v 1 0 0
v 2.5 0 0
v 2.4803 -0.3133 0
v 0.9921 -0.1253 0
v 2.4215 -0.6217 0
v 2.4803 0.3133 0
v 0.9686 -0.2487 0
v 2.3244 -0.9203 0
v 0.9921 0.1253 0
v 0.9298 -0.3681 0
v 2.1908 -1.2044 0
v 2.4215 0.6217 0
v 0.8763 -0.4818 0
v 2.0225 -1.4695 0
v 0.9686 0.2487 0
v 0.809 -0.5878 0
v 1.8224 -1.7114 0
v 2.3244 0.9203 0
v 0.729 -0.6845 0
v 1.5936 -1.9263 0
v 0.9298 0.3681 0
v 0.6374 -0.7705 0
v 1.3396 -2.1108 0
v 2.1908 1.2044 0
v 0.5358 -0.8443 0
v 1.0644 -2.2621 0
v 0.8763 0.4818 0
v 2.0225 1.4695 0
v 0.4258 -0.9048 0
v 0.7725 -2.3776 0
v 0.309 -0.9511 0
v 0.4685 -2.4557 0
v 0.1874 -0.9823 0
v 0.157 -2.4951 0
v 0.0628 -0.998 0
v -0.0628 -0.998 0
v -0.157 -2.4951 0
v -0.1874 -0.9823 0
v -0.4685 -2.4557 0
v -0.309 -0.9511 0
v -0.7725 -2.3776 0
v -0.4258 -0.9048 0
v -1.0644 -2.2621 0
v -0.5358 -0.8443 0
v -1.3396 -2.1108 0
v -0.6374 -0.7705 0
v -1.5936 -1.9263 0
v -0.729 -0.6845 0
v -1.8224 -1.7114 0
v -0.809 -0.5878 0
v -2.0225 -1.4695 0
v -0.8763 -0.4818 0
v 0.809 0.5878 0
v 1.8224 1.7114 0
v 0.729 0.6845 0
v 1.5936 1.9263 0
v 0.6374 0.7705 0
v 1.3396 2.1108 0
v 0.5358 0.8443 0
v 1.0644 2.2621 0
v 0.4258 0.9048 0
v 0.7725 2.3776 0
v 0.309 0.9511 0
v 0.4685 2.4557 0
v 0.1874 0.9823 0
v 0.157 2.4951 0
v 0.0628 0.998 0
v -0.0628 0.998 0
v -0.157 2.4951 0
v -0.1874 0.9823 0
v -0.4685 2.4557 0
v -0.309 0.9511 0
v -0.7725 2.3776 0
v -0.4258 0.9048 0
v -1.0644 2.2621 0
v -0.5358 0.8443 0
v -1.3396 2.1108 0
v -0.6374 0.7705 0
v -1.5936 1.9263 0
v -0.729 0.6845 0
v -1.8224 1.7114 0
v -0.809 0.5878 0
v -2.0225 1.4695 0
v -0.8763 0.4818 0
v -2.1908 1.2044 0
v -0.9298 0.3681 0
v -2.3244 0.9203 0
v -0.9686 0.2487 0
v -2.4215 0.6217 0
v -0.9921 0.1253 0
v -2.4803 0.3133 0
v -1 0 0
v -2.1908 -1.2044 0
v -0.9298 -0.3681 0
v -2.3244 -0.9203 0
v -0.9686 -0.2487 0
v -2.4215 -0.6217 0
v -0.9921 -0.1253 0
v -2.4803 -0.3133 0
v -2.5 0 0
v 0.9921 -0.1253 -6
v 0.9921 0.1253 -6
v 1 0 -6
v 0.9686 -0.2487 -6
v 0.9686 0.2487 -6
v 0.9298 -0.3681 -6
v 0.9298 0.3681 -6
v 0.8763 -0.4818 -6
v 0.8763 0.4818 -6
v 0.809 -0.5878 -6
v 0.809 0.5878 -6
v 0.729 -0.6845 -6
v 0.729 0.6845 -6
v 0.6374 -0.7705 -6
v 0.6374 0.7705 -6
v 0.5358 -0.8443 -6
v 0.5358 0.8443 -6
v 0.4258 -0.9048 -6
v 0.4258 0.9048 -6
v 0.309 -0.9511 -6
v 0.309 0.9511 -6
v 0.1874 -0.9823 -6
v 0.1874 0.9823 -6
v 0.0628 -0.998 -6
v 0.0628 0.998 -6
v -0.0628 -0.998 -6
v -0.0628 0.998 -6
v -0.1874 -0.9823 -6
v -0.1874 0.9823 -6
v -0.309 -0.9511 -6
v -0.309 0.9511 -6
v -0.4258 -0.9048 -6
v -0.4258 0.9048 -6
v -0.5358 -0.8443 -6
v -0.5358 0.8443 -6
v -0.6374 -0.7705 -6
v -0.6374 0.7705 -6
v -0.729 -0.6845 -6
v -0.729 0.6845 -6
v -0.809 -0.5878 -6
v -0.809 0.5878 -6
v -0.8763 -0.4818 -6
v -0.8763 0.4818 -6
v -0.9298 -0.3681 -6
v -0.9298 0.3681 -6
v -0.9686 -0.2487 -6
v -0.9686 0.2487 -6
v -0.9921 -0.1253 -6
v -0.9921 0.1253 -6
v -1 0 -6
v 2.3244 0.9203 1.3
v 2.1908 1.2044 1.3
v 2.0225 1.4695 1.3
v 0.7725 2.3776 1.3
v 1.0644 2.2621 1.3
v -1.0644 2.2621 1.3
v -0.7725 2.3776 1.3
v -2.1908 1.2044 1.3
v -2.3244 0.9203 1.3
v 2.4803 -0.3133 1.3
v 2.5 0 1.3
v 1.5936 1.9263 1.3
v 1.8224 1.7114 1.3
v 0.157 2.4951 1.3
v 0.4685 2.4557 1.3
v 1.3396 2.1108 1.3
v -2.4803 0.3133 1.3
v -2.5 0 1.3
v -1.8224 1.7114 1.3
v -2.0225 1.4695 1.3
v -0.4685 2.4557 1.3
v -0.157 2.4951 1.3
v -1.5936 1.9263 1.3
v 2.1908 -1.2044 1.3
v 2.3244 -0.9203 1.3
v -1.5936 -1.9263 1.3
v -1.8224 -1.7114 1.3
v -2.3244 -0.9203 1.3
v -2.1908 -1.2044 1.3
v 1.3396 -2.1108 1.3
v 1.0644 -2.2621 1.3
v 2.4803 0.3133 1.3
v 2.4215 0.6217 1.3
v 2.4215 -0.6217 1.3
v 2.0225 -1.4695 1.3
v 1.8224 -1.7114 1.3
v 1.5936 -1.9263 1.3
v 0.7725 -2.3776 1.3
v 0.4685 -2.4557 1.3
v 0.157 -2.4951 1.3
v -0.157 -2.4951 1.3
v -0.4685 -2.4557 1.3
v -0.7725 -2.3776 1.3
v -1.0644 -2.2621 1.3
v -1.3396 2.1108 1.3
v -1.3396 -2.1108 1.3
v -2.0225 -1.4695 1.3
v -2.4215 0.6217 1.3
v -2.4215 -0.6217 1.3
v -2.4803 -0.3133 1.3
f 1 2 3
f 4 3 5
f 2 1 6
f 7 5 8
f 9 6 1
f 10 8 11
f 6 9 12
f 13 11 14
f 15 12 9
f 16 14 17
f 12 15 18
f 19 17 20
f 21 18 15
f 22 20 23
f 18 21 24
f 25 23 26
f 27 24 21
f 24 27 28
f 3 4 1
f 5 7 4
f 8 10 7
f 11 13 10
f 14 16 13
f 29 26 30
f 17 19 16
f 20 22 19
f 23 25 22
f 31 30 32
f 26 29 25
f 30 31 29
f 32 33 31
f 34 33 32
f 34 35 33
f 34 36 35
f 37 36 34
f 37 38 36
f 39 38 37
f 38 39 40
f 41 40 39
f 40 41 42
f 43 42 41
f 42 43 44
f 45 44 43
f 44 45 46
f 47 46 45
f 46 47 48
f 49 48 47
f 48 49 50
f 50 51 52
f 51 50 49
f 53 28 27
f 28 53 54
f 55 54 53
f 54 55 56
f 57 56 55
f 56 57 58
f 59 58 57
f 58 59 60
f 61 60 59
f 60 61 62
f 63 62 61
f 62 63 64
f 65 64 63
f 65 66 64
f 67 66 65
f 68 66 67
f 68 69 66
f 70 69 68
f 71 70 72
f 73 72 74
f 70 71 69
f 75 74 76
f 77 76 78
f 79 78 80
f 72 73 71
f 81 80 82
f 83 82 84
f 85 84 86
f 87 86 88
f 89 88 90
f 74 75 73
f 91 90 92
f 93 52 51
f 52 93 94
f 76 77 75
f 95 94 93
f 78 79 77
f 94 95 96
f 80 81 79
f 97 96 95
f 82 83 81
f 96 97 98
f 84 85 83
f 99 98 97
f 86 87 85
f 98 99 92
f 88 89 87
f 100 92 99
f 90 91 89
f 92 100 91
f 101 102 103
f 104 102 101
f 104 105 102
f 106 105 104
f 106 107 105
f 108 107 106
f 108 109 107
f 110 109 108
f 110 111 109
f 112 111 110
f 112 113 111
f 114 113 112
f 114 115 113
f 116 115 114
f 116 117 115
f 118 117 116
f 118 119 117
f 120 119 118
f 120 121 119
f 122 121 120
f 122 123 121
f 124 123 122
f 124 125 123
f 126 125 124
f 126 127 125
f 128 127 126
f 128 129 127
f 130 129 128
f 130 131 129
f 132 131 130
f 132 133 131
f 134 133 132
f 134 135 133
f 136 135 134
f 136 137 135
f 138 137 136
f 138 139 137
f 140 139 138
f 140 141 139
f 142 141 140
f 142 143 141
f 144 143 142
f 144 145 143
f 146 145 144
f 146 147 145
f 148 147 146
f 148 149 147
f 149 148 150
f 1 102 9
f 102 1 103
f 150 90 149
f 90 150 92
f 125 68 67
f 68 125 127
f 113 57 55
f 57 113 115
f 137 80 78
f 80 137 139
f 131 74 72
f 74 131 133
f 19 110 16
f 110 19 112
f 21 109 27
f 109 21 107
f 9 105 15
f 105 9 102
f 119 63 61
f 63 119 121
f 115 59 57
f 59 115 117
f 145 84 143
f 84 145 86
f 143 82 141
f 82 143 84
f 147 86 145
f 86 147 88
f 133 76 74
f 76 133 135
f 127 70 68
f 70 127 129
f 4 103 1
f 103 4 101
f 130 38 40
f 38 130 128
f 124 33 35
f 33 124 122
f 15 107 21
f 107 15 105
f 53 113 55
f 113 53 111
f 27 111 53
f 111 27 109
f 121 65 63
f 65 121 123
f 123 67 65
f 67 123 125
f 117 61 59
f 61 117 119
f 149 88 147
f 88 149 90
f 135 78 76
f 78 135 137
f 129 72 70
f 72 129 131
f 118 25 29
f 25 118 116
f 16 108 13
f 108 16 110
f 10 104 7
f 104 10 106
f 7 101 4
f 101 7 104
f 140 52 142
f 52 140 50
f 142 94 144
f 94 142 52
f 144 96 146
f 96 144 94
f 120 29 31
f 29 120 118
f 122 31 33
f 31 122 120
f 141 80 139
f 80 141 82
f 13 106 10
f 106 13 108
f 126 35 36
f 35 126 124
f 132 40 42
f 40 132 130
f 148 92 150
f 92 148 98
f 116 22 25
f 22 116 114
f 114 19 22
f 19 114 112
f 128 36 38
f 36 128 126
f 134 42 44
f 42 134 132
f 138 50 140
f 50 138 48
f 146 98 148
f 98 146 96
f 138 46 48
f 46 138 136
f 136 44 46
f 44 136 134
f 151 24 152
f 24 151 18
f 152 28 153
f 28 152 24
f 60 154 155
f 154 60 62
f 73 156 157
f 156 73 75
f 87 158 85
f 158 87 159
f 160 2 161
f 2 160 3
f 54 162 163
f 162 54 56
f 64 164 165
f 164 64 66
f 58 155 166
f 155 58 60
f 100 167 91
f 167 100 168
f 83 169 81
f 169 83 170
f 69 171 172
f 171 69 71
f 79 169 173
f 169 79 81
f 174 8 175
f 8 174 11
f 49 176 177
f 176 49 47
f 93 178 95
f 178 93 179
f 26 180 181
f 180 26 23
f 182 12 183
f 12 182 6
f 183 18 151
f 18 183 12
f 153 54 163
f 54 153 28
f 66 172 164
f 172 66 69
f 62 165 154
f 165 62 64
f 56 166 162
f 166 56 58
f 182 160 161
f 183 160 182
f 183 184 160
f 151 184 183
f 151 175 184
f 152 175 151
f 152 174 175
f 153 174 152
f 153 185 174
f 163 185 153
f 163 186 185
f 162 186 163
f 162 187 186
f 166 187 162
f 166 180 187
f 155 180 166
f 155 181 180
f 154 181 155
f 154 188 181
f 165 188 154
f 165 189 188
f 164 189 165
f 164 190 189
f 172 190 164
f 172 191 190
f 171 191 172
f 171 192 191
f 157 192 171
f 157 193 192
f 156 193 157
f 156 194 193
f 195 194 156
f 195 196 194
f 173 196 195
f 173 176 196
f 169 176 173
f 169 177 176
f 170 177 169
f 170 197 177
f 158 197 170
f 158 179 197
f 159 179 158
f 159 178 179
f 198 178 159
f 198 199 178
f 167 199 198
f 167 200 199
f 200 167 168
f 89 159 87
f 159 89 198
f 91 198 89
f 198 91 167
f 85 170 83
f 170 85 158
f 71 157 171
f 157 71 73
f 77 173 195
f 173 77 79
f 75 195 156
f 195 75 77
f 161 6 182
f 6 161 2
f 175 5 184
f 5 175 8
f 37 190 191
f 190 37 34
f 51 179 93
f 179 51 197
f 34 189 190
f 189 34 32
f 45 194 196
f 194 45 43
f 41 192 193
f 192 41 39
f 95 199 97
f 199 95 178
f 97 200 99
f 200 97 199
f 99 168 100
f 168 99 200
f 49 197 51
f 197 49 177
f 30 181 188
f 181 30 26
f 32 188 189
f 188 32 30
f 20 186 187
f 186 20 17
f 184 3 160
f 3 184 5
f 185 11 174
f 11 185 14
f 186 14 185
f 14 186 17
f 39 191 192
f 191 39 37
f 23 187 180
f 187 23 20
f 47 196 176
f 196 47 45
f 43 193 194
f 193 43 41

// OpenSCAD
$fn = 50;


difference() {
	union() {
		translate(v = [0, 0, 0]) {
			rotate(a = [0, 0, 0]) {
				difference() {
					union() {
						translate(v = [0, 0, -6.0000000000]) {
							cylinder(h = 6, r = 0.7500000000);
						}
						translate(v = [0, 0, -6.0000000000]) {
							cylinder(h = 6, r = 1.0000000000);
						}
						cylinder(h = 1.3000000000, r = 2.5000000000);
						translate(v = [0, 0, -6.0000000000]) {
							cylinder(h = 6, r = 0.7500000000);
						}
					}
					union();
				}
			}
		}
	}
	union();
}
